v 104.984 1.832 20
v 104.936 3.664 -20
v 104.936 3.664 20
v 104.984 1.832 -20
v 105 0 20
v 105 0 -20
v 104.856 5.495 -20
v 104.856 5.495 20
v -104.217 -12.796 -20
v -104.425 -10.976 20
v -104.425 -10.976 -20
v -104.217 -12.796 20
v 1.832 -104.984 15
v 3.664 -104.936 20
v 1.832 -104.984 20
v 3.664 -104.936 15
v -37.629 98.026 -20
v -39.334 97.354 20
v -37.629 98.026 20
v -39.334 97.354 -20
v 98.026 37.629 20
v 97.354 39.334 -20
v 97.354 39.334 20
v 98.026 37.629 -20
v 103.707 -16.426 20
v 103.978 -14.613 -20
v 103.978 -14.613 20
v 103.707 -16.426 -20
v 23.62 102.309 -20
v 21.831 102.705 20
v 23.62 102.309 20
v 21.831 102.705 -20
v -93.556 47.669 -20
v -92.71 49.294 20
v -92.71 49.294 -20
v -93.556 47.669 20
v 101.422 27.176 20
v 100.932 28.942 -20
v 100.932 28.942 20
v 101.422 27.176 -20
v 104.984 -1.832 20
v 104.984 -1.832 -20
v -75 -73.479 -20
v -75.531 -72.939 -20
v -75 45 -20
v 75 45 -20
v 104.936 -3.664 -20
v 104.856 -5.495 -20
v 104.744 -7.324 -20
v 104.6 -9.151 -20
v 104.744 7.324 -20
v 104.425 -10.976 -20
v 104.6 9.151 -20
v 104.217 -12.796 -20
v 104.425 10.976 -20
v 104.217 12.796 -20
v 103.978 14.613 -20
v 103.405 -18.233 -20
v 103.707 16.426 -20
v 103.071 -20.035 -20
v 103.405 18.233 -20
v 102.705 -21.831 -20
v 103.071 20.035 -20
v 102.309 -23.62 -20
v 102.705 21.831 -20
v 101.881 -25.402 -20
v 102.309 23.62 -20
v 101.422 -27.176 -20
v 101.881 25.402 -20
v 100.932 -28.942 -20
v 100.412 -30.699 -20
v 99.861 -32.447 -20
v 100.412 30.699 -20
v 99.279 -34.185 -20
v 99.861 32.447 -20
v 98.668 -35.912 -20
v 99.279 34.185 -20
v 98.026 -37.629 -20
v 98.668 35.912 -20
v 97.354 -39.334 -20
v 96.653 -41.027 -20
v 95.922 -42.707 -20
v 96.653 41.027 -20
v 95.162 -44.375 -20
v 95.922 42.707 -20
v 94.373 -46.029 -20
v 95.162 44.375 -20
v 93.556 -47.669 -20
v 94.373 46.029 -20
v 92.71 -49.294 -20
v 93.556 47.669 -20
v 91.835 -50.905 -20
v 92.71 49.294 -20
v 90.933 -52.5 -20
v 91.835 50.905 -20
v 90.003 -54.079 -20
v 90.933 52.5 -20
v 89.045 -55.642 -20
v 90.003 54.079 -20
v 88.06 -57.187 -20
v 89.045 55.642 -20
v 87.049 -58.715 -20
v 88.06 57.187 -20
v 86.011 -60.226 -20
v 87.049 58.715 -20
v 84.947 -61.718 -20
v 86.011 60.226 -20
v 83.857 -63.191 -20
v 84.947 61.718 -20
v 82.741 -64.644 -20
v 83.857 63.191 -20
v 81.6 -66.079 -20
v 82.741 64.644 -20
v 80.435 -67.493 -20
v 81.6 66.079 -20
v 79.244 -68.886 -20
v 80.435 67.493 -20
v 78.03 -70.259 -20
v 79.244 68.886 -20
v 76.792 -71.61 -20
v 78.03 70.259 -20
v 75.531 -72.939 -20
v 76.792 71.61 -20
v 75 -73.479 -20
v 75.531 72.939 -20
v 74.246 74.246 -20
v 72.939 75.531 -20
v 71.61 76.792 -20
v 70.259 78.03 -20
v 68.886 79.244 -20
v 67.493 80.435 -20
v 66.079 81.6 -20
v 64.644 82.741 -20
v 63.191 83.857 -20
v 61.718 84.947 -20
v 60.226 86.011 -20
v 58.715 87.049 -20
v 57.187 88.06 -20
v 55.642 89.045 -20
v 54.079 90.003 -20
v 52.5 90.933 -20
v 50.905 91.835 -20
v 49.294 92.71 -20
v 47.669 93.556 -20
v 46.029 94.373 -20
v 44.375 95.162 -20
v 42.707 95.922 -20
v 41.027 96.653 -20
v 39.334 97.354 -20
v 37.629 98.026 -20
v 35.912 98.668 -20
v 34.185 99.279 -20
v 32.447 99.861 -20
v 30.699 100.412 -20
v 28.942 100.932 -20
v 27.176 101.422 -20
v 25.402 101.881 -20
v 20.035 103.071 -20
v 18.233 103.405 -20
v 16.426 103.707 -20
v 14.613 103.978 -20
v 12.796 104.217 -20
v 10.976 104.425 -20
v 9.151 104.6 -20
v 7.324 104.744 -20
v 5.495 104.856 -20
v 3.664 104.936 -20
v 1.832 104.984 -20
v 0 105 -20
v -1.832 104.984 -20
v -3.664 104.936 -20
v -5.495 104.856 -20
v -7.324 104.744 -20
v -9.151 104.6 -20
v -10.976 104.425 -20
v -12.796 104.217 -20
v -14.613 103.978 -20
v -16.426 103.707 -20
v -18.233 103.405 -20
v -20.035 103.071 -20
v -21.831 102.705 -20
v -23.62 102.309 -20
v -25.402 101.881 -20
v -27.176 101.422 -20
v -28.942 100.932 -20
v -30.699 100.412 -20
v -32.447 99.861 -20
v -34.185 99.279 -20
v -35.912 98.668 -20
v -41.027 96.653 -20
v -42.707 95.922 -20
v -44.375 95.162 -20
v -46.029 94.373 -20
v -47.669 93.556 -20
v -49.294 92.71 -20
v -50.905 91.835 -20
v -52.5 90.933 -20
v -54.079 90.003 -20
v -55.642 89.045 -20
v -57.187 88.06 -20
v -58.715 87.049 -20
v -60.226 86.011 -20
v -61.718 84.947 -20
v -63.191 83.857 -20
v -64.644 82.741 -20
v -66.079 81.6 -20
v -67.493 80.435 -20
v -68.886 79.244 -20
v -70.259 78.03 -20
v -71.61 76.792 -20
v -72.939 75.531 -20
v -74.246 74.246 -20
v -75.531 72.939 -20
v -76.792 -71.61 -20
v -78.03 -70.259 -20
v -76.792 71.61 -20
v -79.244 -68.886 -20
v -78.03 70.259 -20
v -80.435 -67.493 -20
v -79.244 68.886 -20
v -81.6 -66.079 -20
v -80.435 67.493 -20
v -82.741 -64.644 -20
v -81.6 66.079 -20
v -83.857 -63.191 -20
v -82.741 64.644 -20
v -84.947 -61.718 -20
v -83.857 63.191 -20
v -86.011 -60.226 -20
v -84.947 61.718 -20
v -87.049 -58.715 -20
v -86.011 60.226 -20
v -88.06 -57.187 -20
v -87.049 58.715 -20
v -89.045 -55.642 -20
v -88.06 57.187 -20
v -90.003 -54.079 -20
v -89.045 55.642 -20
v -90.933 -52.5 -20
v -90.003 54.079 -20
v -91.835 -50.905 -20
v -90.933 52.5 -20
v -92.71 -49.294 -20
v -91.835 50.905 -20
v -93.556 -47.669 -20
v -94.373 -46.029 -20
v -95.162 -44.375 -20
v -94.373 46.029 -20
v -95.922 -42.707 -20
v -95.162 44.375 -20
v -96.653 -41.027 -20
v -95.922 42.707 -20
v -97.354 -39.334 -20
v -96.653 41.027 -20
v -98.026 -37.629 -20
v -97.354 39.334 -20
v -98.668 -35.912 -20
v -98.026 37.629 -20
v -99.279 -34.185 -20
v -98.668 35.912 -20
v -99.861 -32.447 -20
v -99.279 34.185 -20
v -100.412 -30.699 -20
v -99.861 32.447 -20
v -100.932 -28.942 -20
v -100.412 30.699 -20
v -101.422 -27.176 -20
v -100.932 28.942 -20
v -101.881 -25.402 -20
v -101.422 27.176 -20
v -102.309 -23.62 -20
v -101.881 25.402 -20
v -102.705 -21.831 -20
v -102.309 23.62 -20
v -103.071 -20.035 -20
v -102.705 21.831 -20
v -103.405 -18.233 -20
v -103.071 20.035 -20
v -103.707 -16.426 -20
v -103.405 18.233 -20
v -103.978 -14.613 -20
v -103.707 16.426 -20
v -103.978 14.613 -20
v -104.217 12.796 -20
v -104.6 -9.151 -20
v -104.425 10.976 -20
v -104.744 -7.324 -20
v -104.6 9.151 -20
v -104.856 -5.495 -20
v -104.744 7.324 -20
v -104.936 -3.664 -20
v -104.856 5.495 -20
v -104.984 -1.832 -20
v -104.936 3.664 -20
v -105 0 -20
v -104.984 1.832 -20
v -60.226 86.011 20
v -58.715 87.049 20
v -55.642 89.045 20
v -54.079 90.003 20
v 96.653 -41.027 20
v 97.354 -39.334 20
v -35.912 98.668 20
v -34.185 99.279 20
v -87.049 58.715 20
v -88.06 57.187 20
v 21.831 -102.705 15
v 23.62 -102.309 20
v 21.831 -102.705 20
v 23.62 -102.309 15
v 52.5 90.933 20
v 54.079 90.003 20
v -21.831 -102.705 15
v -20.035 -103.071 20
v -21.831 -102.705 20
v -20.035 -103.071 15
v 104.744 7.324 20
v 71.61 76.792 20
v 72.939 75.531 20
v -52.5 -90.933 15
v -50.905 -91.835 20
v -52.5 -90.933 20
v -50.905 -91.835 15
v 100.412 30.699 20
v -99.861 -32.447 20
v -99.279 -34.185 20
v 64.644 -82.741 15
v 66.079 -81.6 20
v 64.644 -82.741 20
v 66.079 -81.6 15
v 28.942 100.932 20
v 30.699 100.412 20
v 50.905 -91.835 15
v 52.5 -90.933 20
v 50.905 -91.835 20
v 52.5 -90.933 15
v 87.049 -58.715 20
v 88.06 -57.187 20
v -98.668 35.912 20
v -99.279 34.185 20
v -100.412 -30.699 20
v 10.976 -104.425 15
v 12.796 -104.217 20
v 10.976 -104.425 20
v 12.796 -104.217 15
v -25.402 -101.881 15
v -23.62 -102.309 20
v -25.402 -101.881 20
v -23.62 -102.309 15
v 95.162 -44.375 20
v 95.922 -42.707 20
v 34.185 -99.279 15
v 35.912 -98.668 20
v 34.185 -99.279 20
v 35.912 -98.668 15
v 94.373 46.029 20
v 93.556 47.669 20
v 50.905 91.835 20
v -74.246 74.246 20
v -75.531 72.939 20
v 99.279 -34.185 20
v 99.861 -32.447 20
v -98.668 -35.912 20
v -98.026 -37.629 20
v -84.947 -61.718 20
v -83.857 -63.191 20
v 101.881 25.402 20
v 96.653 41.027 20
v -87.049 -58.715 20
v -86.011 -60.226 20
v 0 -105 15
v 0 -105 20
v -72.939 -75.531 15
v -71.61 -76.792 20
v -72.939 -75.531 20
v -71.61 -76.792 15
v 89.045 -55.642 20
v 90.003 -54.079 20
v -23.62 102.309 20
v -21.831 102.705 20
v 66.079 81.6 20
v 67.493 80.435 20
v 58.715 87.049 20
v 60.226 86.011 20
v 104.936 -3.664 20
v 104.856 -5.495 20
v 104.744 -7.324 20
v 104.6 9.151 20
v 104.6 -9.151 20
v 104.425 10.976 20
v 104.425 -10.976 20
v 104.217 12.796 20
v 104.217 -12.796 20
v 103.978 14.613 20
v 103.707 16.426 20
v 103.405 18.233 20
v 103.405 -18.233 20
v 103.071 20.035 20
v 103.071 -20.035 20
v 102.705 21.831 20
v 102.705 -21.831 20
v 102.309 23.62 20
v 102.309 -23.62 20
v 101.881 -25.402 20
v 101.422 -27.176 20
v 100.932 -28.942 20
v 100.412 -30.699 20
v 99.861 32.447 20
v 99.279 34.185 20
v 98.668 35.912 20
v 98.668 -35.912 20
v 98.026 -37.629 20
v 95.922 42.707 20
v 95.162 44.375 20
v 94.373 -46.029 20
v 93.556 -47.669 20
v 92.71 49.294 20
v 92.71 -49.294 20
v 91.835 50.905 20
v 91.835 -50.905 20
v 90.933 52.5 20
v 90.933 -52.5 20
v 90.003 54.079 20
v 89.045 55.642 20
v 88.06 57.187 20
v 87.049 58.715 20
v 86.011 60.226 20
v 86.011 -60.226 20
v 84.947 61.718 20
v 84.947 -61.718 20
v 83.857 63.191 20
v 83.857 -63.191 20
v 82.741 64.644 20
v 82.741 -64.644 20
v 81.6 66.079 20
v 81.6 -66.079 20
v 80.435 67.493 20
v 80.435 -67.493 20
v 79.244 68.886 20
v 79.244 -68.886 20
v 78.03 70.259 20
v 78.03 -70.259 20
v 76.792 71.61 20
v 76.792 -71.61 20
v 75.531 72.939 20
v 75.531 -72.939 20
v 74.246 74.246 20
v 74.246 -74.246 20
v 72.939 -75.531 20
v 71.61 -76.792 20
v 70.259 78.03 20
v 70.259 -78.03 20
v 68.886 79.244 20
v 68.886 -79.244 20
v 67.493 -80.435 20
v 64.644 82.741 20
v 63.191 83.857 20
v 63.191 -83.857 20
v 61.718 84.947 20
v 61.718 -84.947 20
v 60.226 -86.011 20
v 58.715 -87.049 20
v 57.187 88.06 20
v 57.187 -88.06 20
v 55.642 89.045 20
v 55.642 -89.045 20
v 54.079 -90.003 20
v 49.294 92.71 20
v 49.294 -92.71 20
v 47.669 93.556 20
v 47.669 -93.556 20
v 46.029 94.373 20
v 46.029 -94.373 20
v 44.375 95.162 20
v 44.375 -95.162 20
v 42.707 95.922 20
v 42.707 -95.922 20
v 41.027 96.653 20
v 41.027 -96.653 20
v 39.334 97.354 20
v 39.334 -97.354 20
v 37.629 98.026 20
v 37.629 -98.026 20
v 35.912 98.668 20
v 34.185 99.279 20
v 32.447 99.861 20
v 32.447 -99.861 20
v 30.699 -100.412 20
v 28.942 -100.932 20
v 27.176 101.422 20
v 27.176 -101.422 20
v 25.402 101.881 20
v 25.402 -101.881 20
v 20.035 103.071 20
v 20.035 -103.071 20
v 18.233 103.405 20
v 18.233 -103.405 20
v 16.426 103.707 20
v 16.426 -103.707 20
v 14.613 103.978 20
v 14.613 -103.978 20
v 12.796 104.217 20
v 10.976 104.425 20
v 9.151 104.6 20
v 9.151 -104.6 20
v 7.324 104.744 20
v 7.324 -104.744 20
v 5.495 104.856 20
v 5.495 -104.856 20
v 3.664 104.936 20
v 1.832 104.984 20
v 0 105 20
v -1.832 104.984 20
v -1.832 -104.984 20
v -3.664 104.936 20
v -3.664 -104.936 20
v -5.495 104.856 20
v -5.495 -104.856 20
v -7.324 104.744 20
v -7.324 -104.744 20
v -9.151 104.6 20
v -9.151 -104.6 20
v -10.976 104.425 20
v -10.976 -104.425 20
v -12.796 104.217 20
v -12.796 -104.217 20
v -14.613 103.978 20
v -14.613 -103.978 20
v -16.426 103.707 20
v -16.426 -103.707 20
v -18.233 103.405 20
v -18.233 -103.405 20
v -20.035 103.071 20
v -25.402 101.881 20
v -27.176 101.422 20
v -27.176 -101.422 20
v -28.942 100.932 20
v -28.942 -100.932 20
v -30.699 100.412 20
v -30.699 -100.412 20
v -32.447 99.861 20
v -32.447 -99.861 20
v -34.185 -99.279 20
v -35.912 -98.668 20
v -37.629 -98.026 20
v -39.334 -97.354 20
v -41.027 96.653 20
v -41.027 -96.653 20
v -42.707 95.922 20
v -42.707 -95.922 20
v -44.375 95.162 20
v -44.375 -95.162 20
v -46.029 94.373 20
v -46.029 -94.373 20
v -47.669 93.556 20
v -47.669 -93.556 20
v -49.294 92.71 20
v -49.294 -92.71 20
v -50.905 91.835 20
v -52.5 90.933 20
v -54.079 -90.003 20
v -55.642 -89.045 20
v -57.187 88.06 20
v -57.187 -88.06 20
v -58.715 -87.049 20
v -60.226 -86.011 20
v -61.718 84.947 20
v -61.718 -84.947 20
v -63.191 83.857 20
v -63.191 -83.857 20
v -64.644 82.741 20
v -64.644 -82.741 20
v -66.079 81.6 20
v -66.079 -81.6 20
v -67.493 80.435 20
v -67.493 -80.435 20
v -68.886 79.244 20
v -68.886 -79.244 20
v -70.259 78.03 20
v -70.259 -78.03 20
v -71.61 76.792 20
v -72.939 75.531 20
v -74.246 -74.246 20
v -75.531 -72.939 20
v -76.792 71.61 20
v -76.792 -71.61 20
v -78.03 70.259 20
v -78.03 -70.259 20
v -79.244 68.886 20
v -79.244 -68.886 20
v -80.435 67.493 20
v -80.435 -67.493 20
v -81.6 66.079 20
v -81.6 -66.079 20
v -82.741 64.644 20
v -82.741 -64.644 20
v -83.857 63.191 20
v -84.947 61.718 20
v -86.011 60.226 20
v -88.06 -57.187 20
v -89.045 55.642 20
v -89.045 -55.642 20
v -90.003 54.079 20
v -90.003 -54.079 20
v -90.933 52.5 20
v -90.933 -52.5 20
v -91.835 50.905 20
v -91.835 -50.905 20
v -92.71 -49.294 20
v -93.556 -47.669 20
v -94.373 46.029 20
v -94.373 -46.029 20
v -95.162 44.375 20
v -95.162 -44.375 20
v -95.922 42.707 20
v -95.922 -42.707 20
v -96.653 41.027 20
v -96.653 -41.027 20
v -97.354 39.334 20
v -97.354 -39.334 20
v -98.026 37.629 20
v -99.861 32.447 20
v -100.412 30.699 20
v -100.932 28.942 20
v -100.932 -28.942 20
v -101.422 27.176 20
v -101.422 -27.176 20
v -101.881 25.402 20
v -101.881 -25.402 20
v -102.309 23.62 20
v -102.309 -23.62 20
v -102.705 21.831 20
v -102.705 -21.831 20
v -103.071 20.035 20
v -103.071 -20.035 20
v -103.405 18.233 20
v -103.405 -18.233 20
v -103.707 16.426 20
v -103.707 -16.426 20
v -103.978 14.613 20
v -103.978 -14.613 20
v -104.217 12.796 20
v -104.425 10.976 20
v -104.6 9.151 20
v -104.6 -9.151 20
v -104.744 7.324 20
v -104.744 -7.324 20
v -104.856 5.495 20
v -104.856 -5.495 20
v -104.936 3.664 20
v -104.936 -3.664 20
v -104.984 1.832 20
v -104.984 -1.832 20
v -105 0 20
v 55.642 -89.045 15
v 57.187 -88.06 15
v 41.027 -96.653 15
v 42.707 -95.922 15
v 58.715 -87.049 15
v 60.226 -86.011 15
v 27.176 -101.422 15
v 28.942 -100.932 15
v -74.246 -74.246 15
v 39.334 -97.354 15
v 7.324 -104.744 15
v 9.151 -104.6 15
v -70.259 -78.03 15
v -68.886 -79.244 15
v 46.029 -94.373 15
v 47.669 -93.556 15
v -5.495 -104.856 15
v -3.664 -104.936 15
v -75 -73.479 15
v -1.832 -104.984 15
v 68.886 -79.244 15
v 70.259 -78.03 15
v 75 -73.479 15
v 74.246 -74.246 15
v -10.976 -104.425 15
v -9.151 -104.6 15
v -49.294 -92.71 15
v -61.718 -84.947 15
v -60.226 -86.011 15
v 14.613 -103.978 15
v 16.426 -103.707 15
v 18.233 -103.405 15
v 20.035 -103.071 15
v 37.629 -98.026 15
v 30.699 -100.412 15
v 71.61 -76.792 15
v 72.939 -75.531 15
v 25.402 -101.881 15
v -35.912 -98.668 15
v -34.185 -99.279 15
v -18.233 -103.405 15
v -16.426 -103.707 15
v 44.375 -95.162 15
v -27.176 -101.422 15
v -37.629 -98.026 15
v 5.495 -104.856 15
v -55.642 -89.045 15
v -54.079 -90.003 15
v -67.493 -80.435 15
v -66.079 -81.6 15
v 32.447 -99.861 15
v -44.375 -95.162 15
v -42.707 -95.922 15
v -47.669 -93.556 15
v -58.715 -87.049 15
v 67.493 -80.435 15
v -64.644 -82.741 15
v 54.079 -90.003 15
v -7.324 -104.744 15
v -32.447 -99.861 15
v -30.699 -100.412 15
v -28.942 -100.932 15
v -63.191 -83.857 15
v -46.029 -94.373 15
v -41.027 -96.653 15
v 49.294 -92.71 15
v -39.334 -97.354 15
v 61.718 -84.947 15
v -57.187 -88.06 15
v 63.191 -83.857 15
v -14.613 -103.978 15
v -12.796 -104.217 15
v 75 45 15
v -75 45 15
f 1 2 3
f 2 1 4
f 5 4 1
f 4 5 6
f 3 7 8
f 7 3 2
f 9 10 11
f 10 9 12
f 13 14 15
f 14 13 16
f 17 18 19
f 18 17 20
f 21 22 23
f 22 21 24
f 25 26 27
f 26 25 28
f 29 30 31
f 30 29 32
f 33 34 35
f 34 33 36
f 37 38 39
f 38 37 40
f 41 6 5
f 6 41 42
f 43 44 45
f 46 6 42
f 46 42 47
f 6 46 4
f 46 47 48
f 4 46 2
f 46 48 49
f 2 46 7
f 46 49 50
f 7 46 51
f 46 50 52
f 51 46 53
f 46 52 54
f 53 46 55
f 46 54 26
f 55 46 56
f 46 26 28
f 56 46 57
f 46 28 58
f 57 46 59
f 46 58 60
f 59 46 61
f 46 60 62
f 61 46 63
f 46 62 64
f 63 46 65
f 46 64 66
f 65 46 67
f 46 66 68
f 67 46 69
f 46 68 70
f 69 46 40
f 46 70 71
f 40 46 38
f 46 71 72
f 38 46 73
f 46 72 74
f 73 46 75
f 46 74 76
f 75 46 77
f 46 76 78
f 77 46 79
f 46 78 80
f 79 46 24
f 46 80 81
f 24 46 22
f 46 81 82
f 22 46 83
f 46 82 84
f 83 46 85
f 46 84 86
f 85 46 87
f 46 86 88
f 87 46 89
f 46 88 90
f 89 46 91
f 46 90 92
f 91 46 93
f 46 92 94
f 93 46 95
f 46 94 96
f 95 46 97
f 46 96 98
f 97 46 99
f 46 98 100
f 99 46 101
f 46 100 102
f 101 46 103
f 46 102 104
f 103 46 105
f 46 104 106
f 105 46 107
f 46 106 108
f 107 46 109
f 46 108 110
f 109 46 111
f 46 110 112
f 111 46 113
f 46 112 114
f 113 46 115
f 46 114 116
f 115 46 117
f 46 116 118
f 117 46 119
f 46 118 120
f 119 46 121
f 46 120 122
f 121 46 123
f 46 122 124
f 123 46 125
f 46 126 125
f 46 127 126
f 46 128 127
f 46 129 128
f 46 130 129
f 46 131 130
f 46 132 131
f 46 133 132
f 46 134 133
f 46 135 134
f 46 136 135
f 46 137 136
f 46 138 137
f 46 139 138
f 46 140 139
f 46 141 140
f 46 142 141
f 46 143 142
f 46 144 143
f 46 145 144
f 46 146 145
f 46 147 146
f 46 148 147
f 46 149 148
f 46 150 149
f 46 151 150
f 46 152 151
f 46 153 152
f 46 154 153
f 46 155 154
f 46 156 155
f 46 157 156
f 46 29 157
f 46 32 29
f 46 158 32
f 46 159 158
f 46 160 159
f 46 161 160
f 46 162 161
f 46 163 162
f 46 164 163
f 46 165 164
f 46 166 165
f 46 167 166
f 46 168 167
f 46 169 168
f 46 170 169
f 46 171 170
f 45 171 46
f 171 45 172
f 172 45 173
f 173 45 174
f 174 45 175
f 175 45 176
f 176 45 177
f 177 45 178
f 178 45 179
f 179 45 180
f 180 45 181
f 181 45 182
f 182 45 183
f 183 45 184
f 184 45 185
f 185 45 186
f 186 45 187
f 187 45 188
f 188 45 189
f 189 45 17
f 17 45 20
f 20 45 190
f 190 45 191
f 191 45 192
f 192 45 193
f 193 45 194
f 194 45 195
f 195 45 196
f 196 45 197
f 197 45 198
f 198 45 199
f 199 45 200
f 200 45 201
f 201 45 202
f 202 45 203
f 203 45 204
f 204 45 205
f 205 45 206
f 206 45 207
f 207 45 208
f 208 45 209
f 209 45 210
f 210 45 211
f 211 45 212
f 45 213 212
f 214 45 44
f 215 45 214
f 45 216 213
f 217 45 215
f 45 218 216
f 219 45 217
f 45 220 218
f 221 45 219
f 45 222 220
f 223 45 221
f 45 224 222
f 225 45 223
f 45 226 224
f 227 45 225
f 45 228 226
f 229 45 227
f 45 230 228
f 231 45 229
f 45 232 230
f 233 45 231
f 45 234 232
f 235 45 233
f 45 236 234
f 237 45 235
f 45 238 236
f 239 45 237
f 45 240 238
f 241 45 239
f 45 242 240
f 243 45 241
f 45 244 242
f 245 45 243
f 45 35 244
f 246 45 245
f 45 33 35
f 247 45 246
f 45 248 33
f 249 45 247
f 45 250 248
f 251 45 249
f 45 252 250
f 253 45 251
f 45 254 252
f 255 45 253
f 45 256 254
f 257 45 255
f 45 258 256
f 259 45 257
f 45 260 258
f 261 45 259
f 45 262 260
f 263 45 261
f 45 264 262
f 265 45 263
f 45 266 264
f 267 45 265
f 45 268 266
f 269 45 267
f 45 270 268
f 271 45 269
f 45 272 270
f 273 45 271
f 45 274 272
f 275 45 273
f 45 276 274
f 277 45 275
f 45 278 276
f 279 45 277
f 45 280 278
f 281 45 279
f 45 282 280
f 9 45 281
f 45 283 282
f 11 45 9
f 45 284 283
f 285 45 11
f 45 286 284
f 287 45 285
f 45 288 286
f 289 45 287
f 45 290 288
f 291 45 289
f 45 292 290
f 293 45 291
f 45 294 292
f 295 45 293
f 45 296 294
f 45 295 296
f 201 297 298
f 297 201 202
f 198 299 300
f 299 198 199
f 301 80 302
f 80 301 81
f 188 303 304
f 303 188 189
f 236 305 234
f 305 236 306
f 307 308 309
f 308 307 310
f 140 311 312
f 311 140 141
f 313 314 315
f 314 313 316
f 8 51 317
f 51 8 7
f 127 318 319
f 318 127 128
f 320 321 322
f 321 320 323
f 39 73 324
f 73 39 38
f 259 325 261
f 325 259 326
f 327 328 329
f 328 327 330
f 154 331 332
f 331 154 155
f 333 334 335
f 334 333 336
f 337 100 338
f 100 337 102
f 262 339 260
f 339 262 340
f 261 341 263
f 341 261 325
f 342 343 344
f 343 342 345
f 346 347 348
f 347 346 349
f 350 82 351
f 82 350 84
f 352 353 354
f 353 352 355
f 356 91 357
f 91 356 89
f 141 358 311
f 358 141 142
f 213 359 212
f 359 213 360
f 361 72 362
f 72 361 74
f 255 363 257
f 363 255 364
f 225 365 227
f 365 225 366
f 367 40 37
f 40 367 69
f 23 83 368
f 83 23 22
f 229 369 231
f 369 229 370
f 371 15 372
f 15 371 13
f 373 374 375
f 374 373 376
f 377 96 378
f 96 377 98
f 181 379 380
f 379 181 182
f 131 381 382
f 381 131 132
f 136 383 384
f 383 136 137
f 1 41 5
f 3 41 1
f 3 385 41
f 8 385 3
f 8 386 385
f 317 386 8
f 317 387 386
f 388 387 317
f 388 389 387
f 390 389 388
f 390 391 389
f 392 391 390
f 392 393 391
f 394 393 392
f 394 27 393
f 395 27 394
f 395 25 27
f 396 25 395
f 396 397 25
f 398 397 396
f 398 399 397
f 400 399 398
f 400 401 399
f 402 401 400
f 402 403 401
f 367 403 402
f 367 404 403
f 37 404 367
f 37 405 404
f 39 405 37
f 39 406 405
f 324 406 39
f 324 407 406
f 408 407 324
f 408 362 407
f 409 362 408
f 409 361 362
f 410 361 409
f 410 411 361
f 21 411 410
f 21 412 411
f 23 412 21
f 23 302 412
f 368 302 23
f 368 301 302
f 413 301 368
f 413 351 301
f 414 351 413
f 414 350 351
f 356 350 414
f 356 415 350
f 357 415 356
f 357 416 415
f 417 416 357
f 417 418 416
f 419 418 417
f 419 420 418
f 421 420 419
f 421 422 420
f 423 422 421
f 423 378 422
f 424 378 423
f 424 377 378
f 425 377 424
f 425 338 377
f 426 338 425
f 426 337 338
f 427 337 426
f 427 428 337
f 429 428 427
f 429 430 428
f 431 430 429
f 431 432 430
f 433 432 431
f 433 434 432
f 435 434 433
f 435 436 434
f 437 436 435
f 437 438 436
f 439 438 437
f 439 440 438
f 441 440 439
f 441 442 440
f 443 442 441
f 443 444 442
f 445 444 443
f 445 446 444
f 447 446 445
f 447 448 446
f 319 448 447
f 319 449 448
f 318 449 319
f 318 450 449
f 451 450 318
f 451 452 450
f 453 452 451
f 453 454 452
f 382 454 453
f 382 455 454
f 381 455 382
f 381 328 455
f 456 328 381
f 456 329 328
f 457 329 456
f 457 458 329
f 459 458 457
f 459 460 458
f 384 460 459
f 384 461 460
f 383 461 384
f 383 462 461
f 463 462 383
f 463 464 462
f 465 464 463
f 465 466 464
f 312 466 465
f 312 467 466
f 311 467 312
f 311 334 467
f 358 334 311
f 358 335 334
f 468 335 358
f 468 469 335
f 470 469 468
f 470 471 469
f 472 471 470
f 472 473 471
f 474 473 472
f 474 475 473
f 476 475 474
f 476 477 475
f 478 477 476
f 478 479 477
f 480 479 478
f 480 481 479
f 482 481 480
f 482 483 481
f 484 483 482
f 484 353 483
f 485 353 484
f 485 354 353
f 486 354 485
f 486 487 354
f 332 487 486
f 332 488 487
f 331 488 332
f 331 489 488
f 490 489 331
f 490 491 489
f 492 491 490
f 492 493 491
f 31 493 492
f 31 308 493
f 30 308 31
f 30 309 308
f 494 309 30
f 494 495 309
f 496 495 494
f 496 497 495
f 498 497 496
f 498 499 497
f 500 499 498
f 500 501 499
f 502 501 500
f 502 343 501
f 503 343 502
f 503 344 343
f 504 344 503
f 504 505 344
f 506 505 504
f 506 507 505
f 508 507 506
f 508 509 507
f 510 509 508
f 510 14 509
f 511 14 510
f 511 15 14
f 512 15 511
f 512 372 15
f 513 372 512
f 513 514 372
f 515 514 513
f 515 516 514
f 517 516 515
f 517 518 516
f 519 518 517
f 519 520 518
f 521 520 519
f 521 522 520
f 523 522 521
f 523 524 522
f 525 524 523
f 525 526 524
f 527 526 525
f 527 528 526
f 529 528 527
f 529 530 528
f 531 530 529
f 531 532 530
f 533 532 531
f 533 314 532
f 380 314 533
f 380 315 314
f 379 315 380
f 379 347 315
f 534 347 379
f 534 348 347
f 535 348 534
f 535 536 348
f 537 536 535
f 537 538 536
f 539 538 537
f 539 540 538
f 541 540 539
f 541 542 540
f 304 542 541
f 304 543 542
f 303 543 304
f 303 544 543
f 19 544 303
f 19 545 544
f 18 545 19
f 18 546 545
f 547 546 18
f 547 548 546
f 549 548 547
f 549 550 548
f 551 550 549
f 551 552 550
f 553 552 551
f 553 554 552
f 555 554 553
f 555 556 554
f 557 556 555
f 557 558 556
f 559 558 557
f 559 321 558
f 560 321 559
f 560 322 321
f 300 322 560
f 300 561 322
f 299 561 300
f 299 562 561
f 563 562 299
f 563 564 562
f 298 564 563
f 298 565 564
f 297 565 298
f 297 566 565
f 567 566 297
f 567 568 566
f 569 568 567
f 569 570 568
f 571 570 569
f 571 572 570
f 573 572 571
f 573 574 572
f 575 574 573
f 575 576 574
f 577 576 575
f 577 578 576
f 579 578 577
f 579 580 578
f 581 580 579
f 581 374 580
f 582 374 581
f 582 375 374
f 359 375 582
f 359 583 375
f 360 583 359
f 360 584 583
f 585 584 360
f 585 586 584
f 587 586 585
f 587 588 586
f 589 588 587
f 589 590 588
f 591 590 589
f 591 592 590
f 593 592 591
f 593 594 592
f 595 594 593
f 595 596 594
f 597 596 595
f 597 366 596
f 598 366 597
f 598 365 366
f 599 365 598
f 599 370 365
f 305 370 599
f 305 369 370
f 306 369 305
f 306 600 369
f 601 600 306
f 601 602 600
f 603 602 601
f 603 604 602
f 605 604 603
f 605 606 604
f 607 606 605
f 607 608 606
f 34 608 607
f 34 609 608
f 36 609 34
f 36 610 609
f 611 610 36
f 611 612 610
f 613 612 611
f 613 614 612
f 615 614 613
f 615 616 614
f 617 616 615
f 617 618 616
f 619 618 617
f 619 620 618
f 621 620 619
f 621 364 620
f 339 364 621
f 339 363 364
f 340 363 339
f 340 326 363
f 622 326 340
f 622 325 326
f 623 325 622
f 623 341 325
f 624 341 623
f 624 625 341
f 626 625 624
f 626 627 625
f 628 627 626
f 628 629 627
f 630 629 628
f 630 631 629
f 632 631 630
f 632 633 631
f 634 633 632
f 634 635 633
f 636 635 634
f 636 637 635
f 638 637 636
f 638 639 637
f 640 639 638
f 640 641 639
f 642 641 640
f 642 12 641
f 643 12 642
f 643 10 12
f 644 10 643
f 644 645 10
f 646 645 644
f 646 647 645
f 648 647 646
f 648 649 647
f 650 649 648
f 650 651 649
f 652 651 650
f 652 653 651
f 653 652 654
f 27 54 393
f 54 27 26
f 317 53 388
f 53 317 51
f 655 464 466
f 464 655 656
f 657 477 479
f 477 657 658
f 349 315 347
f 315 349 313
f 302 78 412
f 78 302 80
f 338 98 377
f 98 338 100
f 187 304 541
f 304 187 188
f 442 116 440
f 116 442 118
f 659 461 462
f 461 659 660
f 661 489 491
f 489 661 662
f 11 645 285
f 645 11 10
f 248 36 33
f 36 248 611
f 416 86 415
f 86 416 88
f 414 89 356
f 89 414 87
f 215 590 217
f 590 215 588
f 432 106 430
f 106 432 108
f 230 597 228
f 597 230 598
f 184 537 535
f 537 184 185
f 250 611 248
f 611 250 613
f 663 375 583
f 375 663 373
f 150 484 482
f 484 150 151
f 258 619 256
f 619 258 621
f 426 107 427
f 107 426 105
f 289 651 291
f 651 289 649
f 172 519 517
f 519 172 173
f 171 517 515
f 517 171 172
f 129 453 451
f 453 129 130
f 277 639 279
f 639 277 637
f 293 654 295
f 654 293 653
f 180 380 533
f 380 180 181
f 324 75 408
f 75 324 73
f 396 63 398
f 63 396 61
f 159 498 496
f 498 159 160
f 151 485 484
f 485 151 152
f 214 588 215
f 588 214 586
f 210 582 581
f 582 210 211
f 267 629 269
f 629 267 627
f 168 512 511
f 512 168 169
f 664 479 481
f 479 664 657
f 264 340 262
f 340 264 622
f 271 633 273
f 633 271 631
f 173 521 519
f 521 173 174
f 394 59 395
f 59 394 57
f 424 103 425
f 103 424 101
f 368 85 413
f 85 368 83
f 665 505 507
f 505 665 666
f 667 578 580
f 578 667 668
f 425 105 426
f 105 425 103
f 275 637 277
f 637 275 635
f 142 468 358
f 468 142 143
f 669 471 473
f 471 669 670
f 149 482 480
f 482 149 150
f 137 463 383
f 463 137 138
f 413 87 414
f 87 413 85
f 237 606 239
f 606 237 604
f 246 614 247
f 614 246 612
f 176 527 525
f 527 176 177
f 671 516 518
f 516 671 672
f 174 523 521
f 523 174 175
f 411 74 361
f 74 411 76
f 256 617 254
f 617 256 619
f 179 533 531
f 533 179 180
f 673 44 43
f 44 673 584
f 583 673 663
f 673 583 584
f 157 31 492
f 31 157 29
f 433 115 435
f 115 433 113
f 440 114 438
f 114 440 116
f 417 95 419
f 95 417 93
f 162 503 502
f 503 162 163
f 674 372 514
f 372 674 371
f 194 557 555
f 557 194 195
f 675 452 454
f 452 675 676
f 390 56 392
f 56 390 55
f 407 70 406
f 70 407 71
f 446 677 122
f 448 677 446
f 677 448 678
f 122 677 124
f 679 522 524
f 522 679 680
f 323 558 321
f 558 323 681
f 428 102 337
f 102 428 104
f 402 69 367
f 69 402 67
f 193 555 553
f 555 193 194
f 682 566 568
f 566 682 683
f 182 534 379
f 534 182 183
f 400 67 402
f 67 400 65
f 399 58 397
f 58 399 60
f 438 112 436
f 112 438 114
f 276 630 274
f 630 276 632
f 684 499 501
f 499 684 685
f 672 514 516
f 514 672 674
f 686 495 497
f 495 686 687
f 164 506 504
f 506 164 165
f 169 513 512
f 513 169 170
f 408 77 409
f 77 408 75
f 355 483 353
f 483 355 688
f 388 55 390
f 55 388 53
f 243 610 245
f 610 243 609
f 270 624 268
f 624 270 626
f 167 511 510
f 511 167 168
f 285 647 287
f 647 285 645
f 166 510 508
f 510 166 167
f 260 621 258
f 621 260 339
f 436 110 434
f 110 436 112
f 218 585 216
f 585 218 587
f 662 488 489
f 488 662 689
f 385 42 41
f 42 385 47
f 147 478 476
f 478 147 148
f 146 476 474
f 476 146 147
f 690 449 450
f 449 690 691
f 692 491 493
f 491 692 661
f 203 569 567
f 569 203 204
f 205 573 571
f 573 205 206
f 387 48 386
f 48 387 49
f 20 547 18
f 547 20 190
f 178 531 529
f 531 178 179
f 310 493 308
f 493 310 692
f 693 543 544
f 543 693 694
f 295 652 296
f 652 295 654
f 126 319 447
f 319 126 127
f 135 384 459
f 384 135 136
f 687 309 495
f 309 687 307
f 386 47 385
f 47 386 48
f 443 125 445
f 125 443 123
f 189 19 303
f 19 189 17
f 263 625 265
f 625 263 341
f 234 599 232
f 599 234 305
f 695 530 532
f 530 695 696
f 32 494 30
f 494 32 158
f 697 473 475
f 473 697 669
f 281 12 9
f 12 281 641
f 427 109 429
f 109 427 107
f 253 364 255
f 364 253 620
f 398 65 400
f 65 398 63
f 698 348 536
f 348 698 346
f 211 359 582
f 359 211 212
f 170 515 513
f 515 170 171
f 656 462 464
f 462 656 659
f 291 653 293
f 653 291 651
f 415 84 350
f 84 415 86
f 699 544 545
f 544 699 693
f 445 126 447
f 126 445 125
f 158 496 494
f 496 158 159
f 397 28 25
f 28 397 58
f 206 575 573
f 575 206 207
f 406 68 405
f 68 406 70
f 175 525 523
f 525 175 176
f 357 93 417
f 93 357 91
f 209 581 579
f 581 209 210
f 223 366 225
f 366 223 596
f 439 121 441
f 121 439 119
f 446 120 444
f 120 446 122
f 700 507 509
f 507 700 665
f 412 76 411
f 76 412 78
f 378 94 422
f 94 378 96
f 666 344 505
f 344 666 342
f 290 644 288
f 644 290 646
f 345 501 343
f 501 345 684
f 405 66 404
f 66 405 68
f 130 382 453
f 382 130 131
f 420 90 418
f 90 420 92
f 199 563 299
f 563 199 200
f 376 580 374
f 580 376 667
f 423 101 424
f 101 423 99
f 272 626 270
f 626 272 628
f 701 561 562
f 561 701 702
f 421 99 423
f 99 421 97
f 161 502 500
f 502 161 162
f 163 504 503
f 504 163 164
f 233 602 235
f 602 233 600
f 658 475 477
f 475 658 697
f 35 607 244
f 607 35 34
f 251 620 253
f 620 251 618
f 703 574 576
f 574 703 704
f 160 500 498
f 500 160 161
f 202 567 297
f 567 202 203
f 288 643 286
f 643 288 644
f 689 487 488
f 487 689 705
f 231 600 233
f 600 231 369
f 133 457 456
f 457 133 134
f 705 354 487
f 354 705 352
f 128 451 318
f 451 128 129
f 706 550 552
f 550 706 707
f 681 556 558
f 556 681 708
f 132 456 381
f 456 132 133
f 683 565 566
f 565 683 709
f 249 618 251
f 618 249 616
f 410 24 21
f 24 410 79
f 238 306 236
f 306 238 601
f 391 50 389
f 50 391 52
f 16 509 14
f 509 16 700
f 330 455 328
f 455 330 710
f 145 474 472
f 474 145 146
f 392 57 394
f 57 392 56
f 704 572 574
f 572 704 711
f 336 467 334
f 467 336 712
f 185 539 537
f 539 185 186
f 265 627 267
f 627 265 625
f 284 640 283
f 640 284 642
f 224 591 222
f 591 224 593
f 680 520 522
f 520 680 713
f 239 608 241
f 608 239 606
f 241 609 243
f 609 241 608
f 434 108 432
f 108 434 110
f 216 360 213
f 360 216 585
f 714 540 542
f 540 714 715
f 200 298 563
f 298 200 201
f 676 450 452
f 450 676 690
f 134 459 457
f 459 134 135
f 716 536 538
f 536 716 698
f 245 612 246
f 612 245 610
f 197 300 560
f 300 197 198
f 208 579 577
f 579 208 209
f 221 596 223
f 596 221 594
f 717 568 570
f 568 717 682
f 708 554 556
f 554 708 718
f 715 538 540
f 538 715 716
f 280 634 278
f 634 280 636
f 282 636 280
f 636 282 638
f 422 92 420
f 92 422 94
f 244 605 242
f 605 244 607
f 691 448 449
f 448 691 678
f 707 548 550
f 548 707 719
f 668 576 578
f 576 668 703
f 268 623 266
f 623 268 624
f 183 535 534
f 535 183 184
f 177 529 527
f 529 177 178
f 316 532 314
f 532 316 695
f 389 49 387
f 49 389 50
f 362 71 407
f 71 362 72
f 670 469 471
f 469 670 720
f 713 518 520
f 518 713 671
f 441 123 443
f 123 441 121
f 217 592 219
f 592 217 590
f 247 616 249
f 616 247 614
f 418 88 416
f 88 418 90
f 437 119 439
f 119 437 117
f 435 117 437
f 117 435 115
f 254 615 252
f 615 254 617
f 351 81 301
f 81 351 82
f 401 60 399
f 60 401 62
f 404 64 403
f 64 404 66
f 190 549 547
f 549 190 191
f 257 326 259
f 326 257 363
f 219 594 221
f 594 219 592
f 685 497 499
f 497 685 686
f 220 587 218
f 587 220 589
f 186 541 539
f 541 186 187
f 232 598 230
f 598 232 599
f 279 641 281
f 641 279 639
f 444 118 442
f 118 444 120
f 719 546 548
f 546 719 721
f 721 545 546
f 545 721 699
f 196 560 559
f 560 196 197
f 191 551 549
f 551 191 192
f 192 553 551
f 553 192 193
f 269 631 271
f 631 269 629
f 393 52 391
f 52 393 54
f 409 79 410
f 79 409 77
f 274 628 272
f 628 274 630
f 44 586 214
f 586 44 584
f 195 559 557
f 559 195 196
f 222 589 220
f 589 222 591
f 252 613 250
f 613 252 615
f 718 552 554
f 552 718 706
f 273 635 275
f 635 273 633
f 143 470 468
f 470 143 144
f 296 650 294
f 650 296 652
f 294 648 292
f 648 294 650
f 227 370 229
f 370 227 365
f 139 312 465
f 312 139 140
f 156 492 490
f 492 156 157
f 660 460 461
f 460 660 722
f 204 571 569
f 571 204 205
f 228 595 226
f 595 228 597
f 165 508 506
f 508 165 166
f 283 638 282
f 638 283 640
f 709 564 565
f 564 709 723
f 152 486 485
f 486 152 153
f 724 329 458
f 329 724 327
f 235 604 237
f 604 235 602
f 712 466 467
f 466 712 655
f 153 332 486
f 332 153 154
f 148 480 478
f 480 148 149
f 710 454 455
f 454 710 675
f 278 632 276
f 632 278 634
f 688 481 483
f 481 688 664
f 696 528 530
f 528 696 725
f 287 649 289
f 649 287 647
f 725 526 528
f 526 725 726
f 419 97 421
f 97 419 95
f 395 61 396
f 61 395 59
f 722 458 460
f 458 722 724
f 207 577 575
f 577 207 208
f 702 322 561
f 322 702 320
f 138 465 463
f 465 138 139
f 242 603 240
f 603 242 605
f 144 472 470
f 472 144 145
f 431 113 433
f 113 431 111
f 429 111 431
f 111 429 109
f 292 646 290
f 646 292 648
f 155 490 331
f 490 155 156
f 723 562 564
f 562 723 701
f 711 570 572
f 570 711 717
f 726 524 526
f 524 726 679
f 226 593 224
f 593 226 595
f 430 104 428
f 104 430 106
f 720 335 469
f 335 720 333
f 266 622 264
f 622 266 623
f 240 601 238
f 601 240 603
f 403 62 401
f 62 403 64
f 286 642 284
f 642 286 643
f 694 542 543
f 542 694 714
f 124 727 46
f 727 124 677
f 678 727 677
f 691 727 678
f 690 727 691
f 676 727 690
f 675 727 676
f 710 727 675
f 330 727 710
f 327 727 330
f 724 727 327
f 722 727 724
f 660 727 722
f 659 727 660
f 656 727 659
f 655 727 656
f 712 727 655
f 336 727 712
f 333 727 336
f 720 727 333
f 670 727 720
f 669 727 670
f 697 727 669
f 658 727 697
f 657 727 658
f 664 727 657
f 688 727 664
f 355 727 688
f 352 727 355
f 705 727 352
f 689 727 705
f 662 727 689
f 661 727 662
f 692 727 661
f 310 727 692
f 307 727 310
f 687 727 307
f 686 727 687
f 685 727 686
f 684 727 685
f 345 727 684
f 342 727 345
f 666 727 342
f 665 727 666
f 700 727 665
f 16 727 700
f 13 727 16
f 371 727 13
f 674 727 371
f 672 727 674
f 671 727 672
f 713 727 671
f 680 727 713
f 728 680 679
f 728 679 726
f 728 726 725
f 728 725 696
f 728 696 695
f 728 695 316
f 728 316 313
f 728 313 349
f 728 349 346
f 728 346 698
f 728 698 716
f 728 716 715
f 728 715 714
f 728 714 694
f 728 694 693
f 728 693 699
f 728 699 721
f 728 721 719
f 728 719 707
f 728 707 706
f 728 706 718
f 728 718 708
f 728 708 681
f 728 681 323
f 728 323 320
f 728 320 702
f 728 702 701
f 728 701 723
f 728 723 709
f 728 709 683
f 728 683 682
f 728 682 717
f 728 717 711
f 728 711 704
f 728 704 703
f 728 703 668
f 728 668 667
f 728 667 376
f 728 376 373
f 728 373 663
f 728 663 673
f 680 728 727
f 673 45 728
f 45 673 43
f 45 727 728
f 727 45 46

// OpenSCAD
baseDiameter = 210;
baseHeight = 40;
drawerWidth = 150;
unionHeight = 5;
walls = 3;
padding = 0.25;

holeCylinderRadius = 20;

//Global variable
$fn=360; 


// Stand
difference() {  
    cylinder(h=baseHeight, d1=baseDiameter, d2=baseDiameter, center = true);
    
    translate([0,-(baseDiameter-drawerWidth),-unionHeight])
        cube([drawerWidth, baseDiameter, baseHeight], center = true);
}
